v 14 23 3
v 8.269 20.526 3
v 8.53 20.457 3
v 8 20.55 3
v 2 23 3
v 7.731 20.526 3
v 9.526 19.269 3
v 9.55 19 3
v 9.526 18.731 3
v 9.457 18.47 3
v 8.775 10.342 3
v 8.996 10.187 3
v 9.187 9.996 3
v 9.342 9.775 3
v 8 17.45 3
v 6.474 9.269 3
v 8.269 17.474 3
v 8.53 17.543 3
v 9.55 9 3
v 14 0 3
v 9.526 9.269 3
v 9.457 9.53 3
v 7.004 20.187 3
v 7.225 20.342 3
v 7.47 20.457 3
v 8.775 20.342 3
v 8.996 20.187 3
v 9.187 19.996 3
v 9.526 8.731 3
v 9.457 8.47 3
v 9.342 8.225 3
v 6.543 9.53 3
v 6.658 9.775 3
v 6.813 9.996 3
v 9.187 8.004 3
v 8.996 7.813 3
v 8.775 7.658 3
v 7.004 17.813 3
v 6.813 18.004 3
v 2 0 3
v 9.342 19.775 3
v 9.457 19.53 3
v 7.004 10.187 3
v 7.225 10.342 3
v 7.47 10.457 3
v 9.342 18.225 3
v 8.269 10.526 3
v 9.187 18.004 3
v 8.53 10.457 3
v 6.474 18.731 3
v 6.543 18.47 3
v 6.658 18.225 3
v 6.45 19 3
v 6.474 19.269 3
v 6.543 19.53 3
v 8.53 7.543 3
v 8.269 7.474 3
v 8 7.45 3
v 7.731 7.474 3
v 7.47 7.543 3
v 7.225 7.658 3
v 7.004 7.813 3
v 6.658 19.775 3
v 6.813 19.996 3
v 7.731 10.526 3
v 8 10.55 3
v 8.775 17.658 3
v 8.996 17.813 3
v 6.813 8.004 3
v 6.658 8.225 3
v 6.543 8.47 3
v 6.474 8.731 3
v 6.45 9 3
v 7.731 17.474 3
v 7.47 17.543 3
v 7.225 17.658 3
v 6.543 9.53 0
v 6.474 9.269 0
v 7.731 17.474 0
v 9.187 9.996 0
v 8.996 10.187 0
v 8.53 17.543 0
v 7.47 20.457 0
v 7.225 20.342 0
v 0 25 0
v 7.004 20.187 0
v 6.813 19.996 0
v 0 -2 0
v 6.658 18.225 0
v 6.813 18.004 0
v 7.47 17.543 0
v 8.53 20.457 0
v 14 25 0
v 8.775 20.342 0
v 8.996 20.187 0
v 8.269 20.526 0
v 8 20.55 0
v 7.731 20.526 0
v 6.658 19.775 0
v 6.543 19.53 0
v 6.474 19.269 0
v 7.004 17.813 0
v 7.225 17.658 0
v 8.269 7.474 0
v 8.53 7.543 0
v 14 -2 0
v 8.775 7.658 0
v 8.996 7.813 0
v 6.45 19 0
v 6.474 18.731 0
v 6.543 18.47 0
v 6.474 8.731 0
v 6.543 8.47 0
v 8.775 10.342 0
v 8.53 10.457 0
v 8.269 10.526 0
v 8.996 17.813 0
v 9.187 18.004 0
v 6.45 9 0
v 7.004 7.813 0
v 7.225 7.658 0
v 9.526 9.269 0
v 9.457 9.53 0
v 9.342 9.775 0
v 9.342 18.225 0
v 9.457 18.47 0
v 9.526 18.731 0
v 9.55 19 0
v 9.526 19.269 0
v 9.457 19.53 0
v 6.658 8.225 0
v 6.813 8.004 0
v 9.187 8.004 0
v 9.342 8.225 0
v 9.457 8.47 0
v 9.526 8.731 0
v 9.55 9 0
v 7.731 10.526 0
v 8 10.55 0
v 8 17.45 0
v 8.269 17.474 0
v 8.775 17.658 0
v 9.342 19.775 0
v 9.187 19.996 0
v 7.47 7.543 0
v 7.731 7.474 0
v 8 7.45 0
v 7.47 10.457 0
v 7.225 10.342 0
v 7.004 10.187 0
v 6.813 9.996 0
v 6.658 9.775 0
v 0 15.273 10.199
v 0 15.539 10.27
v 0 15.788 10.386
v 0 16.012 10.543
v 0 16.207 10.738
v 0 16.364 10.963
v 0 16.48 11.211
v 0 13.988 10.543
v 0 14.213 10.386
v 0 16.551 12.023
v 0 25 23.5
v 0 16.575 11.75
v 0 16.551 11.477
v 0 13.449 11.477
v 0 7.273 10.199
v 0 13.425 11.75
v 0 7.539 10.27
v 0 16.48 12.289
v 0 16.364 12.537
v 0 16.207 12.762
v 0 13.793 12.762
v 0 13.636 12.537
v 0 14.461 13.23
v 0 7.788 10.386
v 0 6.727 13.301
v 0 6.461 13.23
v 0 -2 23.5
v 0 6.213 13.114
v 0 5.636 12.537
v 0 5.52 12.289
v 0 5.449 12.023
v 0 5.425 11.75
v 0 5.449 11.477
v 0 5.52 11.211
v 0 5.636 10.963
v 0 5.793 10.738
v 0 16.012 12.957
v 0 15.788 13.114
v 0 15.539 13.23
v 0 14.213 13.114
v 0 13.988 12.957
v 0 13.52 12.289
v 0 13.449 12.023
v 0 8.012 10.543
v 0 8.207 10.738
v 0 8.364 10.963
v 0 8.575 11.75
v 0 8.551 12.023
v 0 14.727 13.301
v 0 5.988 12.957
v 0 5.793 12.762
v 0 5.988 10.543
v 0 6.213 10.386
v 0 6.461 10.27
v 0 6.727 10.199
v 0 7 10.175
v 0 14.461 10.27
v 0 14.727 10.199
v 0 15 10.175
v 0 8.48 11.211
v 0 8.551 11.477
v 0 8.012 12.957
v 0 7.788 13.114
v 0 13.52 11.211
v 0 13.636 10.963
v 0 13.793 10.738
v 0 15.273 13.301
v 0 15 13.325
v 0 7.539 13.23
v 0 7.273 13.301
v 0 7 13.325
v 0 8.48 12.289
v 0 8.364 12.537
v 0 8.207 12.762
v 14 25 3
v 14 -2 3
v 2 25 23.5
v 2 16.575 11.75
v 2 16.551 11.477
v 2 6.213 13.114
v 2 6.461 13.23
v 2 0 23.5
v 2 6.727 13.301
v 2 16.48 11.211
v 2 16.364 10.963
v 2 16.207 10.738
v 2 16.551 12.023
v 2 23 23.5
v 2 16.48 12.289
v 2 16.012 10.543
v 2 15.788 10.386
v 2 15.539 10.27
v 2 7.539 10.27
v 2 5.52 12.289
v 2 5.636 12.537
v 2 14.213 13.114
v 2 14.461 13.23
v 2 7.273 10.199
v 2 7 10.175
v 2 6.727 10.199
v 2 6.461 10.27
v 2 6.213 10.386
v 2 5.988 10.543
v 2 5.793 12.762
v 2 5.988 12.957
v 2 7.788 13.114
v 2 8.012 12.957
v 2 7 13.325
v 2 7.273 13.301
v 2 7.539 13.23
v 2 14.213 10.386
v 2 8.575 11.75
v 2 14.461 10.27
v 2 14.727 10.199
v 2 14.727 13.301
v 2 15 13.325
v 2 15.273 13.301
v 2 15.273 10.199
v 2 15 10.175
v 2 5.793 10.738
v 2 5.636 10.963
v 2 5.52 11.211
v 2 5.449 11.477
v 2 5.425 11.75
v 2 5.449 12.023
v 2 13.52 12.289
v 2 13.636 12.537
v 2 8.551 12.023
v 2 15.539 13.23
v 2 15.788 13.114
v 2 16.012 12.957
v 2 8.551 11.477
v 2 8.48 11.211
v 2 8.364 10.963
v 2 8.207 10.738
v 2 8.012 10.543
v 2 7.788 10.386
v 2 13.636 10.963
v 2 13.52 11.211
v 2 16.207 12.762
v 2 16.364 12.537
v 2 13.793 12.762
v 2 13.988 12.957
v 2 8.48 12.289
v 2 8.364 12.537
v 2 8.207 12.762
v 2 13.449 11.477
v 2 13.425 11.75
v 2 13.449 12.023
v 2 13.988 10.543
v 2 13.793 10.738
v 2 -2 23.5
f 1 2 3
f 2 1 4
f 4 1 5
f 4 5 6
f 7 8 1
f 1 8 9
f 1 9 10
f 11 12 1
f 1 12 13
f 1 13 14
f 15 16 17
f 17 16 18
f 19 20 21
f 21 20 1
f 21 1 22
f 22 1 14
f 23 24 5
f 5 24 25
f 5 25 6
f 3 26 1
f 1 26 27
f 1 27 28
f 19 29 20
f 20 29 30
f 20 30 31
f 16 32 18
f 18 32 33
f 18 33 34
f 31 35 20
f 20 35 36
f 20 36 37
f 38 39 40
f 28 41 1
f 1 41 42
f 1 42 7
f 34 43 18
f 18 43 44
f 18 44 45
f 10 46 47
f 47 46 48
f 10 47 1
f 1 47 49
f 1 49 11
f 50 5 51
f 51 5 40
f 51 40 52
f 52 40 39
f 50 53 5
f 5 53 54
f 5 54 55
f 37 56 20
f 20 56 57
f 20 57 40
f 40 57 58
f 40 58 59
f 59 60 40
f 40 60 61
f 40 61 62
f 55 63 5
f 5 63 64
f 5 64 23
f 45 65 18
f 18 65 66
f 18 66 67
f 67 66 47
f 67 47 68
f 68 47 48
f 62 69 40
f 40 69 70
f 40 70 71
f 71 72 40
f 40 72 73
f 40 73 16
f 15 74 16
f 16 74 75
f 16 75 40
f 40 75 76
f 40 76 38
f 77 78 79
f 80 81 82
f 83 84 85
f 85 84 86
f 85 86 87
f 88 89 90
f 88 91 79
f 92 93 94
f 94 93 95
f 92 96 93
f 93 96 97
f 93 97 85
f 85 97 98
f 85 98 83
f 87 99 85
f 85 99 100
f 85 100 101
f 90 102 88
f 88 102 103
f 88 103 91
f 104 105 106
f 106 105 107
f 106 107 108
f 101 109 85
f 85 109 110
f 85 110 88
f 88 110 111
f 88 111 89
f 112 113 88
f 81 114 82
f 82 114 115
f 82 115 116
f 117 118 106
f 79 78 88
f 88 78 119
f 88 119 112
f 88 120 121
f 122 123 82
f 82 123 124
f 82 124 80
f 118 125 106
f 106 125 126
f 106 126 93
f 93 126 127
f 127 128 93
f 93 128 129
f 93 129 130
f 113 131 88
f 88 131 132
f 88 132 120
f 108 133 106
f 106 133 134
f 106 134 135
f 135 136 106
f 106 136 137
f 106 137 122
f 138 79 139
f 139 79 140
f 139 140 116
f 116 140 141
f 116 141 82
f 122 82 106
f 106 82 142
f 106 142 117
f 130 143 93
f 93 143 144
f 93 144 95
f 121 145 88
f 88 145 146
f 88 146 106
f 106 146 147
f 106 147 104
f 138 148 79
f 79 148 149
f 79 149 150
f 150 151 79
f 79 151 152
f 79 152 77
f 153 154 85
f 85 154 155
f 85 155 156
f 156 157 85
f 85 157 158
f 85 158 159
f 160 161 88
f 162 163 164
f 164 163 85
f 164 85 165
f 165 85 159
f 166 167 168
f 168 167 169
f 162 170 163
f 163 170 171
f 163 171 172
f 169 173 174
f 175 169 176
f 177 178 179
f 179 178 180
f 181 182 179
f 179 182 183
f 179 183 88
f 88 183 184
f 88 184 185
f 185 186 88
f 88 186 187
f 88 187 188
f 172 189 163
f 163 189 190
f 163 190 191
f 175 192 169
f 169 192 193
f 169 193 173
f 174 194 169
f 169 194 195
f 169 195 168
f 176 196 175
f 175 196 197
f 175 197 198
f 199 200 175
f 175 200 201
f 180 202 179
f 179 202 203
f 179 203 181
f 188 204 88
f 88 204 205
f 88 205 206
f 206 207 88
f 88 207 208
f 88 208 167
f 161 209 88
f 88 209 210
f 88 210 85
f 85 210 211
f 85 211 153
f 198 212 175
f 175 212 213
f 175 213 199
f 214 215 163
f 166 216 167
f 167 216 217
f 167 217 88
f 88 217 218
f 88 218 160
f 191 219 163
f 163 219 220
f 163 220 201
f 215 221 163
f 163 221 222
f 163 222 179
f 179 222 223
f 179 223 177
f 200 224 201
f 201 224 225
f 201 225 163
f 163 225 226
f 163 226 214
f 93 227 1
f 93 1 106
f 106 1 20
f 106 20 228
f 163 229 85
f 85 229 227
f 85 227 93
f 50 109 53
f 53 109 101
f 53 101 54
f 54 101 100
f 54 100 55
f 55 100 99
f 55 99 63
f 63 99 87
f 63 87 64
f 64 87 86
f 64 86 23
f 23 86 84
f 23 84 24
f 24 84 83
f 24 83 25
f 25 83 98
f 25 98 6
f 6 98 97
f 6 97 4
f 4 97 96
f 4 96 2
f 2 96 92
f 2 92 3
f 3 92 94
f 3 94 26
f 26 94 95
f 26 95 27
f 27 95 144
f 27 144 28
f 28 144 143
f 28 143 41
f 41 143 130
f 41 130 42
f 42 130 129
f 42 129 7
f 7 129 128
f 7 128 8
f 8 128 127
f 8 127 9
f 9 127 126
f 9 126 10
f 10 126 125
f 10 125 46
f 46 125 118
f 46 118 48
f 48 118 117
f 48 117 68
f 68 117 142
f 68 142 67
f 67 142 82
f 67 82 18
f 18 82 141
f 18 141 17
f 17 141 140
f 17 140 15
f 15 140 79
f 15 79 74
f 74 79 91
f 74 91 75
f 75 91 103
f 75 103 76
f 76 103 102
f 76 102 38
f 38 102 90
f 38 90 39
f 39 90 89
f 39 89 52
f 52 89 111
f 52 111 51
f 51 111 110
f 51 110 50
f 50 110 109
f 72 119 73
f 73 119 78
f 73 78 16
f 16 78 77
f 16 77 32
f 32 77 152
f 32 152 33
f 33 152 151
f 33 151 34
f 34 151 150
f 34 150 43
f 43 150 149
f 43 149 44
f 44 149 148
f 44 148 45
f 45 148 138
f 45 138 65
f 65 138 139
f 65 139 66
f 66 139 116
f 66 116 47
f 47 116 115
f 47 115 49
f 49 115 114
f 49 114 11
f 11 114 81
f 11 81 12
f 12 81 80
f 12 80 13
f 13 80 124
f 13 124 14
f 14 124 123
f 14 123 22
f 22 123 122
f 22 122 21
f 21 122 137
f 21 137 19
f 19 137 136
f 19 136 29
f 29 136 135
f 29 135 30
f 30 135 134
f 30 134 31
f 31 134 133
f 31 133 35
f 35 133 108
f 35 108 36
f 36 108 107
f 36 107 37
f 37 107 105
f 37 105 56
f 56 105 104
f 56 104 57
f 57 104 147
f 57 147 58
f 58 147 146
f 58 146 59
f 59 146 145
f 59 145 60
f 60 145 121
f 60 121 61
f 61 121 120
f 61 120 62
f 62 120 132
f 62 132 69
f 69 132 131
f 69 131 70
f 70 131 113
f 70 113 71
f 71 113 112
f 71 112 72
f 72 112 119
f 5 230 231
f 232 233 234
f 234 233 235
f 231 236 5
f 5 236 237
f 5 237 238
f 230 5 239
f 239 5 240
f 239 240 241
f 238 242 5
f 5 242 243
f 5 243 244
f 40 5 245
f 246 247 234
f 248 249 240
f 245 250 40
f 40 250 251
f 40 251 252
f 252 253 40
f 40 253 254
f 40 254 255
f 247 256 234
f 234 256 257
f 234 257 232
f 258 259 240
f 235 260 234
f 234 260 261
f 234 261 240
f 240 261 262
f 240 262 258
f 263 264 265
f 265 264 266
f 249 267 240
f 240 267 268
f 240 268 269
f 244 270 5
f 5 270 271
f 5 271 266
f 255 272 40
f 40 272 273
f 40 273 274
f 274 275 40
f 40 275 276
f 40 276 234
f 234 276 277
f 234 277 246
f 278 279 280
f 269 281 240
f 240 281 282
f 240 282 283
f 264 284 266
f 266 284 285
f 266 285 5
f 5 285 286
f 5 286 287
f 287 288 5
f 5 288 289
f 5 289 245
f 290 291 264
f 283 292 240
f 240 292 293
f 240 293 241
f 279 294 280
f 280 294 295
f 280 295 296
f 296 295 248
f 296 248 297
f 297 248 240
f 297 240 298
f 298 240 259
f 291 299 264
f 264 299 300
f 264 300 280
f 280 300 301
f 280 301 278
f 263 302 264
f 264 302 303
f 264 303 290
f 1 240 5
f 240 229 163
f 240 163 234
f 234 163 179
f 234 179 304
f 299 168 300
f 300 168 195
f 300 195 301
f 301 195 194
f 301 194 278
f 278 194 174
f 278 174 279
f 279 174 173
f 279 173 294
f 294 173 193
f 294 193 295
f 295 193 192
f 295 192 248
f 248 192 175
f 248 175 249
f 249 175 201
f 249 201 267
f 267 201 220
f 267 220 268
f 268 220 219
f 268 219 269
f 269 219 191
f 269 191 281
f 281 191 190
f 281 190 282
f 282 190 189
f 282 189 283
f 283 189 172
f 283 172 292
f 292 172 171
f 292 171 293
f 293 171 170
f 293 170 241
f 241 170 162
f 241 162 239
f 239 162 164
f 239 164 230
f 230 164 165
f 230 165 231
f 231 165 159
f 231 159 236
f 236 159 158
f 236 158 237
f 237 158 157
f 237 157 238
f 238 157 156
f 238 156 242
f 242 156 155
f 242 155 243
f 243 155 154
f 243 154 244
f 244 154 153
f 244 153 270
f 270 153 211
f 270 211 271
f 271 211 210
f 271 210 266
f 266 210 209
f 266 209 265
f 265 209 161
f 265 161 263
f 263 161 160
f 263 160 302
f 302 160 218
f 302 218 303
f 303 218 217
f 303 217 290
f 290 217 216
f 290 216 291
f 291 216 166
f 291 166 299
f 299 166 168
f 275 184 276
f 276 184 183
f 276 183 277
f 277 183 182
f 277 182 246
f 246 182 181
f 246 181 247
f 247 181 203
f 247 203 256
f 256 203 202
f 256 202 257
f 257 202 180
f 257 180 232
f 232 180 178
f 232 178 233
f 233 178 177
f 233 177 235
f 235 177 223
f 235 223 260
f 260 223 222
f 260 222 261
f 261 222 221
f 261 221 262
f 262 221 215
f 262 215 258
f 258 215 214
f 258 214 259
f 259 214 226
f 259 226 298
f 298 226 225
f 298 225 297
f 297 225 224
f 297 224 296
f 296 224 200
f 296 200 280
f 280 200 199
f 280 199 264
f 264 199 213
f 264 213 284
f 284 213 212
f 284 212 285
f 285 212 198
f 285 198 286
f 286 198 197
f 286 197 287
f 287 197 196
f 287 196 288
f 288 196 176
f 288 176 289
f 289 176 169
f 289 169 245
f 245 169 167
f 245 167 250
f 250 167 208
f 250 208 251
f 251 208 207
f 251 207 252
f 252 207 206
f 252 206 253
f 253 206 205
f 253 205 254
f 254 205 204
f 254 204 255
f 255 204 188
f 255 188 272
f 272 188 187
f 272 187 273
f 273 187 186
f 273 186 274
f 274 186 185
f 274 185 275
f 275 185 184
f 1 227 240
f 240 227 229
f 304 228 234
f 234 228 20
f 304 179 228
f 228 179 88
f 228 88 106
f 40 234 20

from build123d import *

# Parameters (mm, degrees)
SKETCH1_W           = 14
SKETCH1_H           = 25
SKETCH1_R           = 1.55
BOSS_EXTRUDE1_DEPTH = 3
BOSS_EXTRUDE2_DEPTH = 20.5
SKETCH4_R           = 1.575
CUT_EXTRUDE1_DEPTH  = 38.057387927
CUT_EXTRUDE2_DEPTH  = 20.5
BOSS_EXTRUDE3_DEPTH = 2


with BuildPart() as part:
    # Sketch1 → Boss-Extrude1 (new body)
    with BuildSketch(Plane.XY):
        with Locations((7, 12.5)):
            Rectangle(SKETCH1_W, SKETCH1_H)
        with Locations((8, 19)):
            Circle(SKETCH1_R, mode=Mode.SUBTRACT)
        with Locations((8, 9)):
            Circle(SKETCH1_R, mode=Mode.SUBTRACT)
    extrude(amount=BOSS_EXTRUDE1_DEPTH)

    # Sketch3 → Boss-Extrude2 (add)
    with BuildSketch(Plane.XY.offset(3)):
        Polygon((0, 0), (0, 25), (14, 25), (14, 23), (2, 23), (2, 0), align=None)
    extrude(amount=BOSS_EXTRUDE2_DEPTH)

    # Sketch4 → Cut-Extrude1 (cut, through all)
    with BuildSketch(Plane.ZY):
        with Locations(Location((11.75, 15, 0), (0, 0, 270))):
            Circle(SKETCH4_R)
        with Locations(Location((11.75, 7, 0), (0, 0, 270))):
            Circle(SKETCH4_R)
    extrude(amount=-CUT_EXTRUDE1_DEPTH, mode=Mode.SUBTRACT)

    # Sketch5 → Cut-Extrude2 (cut)
    with BuildSketch(Plane(origin=(0, 23, 0), x_dir=(-1, 0, 0), z_dir=(0, -1, 0))):
        Polygon((-14, -3), (-2, -23.5), (-14, -23.5), align=None)
    extrude(amount=-CUT_EXTRUDE2_DEPTH, mode=Mode.SUBTRACT)

    # Sketch6 → Boss-Extrude3 (add)
    with BuildSketch(Plane(origin=(0, 0, 0), x_dir=(-1, 0, 0), z_dir=(0, -1, 0))):
        Polygon((-14, 0), (-14, -3), (-2, -23.5), (0, -23.5), (0, 0), align=None)
    extrude(amount=BOSS_EXTRUDE3_DEPTH)


solid = part.part
